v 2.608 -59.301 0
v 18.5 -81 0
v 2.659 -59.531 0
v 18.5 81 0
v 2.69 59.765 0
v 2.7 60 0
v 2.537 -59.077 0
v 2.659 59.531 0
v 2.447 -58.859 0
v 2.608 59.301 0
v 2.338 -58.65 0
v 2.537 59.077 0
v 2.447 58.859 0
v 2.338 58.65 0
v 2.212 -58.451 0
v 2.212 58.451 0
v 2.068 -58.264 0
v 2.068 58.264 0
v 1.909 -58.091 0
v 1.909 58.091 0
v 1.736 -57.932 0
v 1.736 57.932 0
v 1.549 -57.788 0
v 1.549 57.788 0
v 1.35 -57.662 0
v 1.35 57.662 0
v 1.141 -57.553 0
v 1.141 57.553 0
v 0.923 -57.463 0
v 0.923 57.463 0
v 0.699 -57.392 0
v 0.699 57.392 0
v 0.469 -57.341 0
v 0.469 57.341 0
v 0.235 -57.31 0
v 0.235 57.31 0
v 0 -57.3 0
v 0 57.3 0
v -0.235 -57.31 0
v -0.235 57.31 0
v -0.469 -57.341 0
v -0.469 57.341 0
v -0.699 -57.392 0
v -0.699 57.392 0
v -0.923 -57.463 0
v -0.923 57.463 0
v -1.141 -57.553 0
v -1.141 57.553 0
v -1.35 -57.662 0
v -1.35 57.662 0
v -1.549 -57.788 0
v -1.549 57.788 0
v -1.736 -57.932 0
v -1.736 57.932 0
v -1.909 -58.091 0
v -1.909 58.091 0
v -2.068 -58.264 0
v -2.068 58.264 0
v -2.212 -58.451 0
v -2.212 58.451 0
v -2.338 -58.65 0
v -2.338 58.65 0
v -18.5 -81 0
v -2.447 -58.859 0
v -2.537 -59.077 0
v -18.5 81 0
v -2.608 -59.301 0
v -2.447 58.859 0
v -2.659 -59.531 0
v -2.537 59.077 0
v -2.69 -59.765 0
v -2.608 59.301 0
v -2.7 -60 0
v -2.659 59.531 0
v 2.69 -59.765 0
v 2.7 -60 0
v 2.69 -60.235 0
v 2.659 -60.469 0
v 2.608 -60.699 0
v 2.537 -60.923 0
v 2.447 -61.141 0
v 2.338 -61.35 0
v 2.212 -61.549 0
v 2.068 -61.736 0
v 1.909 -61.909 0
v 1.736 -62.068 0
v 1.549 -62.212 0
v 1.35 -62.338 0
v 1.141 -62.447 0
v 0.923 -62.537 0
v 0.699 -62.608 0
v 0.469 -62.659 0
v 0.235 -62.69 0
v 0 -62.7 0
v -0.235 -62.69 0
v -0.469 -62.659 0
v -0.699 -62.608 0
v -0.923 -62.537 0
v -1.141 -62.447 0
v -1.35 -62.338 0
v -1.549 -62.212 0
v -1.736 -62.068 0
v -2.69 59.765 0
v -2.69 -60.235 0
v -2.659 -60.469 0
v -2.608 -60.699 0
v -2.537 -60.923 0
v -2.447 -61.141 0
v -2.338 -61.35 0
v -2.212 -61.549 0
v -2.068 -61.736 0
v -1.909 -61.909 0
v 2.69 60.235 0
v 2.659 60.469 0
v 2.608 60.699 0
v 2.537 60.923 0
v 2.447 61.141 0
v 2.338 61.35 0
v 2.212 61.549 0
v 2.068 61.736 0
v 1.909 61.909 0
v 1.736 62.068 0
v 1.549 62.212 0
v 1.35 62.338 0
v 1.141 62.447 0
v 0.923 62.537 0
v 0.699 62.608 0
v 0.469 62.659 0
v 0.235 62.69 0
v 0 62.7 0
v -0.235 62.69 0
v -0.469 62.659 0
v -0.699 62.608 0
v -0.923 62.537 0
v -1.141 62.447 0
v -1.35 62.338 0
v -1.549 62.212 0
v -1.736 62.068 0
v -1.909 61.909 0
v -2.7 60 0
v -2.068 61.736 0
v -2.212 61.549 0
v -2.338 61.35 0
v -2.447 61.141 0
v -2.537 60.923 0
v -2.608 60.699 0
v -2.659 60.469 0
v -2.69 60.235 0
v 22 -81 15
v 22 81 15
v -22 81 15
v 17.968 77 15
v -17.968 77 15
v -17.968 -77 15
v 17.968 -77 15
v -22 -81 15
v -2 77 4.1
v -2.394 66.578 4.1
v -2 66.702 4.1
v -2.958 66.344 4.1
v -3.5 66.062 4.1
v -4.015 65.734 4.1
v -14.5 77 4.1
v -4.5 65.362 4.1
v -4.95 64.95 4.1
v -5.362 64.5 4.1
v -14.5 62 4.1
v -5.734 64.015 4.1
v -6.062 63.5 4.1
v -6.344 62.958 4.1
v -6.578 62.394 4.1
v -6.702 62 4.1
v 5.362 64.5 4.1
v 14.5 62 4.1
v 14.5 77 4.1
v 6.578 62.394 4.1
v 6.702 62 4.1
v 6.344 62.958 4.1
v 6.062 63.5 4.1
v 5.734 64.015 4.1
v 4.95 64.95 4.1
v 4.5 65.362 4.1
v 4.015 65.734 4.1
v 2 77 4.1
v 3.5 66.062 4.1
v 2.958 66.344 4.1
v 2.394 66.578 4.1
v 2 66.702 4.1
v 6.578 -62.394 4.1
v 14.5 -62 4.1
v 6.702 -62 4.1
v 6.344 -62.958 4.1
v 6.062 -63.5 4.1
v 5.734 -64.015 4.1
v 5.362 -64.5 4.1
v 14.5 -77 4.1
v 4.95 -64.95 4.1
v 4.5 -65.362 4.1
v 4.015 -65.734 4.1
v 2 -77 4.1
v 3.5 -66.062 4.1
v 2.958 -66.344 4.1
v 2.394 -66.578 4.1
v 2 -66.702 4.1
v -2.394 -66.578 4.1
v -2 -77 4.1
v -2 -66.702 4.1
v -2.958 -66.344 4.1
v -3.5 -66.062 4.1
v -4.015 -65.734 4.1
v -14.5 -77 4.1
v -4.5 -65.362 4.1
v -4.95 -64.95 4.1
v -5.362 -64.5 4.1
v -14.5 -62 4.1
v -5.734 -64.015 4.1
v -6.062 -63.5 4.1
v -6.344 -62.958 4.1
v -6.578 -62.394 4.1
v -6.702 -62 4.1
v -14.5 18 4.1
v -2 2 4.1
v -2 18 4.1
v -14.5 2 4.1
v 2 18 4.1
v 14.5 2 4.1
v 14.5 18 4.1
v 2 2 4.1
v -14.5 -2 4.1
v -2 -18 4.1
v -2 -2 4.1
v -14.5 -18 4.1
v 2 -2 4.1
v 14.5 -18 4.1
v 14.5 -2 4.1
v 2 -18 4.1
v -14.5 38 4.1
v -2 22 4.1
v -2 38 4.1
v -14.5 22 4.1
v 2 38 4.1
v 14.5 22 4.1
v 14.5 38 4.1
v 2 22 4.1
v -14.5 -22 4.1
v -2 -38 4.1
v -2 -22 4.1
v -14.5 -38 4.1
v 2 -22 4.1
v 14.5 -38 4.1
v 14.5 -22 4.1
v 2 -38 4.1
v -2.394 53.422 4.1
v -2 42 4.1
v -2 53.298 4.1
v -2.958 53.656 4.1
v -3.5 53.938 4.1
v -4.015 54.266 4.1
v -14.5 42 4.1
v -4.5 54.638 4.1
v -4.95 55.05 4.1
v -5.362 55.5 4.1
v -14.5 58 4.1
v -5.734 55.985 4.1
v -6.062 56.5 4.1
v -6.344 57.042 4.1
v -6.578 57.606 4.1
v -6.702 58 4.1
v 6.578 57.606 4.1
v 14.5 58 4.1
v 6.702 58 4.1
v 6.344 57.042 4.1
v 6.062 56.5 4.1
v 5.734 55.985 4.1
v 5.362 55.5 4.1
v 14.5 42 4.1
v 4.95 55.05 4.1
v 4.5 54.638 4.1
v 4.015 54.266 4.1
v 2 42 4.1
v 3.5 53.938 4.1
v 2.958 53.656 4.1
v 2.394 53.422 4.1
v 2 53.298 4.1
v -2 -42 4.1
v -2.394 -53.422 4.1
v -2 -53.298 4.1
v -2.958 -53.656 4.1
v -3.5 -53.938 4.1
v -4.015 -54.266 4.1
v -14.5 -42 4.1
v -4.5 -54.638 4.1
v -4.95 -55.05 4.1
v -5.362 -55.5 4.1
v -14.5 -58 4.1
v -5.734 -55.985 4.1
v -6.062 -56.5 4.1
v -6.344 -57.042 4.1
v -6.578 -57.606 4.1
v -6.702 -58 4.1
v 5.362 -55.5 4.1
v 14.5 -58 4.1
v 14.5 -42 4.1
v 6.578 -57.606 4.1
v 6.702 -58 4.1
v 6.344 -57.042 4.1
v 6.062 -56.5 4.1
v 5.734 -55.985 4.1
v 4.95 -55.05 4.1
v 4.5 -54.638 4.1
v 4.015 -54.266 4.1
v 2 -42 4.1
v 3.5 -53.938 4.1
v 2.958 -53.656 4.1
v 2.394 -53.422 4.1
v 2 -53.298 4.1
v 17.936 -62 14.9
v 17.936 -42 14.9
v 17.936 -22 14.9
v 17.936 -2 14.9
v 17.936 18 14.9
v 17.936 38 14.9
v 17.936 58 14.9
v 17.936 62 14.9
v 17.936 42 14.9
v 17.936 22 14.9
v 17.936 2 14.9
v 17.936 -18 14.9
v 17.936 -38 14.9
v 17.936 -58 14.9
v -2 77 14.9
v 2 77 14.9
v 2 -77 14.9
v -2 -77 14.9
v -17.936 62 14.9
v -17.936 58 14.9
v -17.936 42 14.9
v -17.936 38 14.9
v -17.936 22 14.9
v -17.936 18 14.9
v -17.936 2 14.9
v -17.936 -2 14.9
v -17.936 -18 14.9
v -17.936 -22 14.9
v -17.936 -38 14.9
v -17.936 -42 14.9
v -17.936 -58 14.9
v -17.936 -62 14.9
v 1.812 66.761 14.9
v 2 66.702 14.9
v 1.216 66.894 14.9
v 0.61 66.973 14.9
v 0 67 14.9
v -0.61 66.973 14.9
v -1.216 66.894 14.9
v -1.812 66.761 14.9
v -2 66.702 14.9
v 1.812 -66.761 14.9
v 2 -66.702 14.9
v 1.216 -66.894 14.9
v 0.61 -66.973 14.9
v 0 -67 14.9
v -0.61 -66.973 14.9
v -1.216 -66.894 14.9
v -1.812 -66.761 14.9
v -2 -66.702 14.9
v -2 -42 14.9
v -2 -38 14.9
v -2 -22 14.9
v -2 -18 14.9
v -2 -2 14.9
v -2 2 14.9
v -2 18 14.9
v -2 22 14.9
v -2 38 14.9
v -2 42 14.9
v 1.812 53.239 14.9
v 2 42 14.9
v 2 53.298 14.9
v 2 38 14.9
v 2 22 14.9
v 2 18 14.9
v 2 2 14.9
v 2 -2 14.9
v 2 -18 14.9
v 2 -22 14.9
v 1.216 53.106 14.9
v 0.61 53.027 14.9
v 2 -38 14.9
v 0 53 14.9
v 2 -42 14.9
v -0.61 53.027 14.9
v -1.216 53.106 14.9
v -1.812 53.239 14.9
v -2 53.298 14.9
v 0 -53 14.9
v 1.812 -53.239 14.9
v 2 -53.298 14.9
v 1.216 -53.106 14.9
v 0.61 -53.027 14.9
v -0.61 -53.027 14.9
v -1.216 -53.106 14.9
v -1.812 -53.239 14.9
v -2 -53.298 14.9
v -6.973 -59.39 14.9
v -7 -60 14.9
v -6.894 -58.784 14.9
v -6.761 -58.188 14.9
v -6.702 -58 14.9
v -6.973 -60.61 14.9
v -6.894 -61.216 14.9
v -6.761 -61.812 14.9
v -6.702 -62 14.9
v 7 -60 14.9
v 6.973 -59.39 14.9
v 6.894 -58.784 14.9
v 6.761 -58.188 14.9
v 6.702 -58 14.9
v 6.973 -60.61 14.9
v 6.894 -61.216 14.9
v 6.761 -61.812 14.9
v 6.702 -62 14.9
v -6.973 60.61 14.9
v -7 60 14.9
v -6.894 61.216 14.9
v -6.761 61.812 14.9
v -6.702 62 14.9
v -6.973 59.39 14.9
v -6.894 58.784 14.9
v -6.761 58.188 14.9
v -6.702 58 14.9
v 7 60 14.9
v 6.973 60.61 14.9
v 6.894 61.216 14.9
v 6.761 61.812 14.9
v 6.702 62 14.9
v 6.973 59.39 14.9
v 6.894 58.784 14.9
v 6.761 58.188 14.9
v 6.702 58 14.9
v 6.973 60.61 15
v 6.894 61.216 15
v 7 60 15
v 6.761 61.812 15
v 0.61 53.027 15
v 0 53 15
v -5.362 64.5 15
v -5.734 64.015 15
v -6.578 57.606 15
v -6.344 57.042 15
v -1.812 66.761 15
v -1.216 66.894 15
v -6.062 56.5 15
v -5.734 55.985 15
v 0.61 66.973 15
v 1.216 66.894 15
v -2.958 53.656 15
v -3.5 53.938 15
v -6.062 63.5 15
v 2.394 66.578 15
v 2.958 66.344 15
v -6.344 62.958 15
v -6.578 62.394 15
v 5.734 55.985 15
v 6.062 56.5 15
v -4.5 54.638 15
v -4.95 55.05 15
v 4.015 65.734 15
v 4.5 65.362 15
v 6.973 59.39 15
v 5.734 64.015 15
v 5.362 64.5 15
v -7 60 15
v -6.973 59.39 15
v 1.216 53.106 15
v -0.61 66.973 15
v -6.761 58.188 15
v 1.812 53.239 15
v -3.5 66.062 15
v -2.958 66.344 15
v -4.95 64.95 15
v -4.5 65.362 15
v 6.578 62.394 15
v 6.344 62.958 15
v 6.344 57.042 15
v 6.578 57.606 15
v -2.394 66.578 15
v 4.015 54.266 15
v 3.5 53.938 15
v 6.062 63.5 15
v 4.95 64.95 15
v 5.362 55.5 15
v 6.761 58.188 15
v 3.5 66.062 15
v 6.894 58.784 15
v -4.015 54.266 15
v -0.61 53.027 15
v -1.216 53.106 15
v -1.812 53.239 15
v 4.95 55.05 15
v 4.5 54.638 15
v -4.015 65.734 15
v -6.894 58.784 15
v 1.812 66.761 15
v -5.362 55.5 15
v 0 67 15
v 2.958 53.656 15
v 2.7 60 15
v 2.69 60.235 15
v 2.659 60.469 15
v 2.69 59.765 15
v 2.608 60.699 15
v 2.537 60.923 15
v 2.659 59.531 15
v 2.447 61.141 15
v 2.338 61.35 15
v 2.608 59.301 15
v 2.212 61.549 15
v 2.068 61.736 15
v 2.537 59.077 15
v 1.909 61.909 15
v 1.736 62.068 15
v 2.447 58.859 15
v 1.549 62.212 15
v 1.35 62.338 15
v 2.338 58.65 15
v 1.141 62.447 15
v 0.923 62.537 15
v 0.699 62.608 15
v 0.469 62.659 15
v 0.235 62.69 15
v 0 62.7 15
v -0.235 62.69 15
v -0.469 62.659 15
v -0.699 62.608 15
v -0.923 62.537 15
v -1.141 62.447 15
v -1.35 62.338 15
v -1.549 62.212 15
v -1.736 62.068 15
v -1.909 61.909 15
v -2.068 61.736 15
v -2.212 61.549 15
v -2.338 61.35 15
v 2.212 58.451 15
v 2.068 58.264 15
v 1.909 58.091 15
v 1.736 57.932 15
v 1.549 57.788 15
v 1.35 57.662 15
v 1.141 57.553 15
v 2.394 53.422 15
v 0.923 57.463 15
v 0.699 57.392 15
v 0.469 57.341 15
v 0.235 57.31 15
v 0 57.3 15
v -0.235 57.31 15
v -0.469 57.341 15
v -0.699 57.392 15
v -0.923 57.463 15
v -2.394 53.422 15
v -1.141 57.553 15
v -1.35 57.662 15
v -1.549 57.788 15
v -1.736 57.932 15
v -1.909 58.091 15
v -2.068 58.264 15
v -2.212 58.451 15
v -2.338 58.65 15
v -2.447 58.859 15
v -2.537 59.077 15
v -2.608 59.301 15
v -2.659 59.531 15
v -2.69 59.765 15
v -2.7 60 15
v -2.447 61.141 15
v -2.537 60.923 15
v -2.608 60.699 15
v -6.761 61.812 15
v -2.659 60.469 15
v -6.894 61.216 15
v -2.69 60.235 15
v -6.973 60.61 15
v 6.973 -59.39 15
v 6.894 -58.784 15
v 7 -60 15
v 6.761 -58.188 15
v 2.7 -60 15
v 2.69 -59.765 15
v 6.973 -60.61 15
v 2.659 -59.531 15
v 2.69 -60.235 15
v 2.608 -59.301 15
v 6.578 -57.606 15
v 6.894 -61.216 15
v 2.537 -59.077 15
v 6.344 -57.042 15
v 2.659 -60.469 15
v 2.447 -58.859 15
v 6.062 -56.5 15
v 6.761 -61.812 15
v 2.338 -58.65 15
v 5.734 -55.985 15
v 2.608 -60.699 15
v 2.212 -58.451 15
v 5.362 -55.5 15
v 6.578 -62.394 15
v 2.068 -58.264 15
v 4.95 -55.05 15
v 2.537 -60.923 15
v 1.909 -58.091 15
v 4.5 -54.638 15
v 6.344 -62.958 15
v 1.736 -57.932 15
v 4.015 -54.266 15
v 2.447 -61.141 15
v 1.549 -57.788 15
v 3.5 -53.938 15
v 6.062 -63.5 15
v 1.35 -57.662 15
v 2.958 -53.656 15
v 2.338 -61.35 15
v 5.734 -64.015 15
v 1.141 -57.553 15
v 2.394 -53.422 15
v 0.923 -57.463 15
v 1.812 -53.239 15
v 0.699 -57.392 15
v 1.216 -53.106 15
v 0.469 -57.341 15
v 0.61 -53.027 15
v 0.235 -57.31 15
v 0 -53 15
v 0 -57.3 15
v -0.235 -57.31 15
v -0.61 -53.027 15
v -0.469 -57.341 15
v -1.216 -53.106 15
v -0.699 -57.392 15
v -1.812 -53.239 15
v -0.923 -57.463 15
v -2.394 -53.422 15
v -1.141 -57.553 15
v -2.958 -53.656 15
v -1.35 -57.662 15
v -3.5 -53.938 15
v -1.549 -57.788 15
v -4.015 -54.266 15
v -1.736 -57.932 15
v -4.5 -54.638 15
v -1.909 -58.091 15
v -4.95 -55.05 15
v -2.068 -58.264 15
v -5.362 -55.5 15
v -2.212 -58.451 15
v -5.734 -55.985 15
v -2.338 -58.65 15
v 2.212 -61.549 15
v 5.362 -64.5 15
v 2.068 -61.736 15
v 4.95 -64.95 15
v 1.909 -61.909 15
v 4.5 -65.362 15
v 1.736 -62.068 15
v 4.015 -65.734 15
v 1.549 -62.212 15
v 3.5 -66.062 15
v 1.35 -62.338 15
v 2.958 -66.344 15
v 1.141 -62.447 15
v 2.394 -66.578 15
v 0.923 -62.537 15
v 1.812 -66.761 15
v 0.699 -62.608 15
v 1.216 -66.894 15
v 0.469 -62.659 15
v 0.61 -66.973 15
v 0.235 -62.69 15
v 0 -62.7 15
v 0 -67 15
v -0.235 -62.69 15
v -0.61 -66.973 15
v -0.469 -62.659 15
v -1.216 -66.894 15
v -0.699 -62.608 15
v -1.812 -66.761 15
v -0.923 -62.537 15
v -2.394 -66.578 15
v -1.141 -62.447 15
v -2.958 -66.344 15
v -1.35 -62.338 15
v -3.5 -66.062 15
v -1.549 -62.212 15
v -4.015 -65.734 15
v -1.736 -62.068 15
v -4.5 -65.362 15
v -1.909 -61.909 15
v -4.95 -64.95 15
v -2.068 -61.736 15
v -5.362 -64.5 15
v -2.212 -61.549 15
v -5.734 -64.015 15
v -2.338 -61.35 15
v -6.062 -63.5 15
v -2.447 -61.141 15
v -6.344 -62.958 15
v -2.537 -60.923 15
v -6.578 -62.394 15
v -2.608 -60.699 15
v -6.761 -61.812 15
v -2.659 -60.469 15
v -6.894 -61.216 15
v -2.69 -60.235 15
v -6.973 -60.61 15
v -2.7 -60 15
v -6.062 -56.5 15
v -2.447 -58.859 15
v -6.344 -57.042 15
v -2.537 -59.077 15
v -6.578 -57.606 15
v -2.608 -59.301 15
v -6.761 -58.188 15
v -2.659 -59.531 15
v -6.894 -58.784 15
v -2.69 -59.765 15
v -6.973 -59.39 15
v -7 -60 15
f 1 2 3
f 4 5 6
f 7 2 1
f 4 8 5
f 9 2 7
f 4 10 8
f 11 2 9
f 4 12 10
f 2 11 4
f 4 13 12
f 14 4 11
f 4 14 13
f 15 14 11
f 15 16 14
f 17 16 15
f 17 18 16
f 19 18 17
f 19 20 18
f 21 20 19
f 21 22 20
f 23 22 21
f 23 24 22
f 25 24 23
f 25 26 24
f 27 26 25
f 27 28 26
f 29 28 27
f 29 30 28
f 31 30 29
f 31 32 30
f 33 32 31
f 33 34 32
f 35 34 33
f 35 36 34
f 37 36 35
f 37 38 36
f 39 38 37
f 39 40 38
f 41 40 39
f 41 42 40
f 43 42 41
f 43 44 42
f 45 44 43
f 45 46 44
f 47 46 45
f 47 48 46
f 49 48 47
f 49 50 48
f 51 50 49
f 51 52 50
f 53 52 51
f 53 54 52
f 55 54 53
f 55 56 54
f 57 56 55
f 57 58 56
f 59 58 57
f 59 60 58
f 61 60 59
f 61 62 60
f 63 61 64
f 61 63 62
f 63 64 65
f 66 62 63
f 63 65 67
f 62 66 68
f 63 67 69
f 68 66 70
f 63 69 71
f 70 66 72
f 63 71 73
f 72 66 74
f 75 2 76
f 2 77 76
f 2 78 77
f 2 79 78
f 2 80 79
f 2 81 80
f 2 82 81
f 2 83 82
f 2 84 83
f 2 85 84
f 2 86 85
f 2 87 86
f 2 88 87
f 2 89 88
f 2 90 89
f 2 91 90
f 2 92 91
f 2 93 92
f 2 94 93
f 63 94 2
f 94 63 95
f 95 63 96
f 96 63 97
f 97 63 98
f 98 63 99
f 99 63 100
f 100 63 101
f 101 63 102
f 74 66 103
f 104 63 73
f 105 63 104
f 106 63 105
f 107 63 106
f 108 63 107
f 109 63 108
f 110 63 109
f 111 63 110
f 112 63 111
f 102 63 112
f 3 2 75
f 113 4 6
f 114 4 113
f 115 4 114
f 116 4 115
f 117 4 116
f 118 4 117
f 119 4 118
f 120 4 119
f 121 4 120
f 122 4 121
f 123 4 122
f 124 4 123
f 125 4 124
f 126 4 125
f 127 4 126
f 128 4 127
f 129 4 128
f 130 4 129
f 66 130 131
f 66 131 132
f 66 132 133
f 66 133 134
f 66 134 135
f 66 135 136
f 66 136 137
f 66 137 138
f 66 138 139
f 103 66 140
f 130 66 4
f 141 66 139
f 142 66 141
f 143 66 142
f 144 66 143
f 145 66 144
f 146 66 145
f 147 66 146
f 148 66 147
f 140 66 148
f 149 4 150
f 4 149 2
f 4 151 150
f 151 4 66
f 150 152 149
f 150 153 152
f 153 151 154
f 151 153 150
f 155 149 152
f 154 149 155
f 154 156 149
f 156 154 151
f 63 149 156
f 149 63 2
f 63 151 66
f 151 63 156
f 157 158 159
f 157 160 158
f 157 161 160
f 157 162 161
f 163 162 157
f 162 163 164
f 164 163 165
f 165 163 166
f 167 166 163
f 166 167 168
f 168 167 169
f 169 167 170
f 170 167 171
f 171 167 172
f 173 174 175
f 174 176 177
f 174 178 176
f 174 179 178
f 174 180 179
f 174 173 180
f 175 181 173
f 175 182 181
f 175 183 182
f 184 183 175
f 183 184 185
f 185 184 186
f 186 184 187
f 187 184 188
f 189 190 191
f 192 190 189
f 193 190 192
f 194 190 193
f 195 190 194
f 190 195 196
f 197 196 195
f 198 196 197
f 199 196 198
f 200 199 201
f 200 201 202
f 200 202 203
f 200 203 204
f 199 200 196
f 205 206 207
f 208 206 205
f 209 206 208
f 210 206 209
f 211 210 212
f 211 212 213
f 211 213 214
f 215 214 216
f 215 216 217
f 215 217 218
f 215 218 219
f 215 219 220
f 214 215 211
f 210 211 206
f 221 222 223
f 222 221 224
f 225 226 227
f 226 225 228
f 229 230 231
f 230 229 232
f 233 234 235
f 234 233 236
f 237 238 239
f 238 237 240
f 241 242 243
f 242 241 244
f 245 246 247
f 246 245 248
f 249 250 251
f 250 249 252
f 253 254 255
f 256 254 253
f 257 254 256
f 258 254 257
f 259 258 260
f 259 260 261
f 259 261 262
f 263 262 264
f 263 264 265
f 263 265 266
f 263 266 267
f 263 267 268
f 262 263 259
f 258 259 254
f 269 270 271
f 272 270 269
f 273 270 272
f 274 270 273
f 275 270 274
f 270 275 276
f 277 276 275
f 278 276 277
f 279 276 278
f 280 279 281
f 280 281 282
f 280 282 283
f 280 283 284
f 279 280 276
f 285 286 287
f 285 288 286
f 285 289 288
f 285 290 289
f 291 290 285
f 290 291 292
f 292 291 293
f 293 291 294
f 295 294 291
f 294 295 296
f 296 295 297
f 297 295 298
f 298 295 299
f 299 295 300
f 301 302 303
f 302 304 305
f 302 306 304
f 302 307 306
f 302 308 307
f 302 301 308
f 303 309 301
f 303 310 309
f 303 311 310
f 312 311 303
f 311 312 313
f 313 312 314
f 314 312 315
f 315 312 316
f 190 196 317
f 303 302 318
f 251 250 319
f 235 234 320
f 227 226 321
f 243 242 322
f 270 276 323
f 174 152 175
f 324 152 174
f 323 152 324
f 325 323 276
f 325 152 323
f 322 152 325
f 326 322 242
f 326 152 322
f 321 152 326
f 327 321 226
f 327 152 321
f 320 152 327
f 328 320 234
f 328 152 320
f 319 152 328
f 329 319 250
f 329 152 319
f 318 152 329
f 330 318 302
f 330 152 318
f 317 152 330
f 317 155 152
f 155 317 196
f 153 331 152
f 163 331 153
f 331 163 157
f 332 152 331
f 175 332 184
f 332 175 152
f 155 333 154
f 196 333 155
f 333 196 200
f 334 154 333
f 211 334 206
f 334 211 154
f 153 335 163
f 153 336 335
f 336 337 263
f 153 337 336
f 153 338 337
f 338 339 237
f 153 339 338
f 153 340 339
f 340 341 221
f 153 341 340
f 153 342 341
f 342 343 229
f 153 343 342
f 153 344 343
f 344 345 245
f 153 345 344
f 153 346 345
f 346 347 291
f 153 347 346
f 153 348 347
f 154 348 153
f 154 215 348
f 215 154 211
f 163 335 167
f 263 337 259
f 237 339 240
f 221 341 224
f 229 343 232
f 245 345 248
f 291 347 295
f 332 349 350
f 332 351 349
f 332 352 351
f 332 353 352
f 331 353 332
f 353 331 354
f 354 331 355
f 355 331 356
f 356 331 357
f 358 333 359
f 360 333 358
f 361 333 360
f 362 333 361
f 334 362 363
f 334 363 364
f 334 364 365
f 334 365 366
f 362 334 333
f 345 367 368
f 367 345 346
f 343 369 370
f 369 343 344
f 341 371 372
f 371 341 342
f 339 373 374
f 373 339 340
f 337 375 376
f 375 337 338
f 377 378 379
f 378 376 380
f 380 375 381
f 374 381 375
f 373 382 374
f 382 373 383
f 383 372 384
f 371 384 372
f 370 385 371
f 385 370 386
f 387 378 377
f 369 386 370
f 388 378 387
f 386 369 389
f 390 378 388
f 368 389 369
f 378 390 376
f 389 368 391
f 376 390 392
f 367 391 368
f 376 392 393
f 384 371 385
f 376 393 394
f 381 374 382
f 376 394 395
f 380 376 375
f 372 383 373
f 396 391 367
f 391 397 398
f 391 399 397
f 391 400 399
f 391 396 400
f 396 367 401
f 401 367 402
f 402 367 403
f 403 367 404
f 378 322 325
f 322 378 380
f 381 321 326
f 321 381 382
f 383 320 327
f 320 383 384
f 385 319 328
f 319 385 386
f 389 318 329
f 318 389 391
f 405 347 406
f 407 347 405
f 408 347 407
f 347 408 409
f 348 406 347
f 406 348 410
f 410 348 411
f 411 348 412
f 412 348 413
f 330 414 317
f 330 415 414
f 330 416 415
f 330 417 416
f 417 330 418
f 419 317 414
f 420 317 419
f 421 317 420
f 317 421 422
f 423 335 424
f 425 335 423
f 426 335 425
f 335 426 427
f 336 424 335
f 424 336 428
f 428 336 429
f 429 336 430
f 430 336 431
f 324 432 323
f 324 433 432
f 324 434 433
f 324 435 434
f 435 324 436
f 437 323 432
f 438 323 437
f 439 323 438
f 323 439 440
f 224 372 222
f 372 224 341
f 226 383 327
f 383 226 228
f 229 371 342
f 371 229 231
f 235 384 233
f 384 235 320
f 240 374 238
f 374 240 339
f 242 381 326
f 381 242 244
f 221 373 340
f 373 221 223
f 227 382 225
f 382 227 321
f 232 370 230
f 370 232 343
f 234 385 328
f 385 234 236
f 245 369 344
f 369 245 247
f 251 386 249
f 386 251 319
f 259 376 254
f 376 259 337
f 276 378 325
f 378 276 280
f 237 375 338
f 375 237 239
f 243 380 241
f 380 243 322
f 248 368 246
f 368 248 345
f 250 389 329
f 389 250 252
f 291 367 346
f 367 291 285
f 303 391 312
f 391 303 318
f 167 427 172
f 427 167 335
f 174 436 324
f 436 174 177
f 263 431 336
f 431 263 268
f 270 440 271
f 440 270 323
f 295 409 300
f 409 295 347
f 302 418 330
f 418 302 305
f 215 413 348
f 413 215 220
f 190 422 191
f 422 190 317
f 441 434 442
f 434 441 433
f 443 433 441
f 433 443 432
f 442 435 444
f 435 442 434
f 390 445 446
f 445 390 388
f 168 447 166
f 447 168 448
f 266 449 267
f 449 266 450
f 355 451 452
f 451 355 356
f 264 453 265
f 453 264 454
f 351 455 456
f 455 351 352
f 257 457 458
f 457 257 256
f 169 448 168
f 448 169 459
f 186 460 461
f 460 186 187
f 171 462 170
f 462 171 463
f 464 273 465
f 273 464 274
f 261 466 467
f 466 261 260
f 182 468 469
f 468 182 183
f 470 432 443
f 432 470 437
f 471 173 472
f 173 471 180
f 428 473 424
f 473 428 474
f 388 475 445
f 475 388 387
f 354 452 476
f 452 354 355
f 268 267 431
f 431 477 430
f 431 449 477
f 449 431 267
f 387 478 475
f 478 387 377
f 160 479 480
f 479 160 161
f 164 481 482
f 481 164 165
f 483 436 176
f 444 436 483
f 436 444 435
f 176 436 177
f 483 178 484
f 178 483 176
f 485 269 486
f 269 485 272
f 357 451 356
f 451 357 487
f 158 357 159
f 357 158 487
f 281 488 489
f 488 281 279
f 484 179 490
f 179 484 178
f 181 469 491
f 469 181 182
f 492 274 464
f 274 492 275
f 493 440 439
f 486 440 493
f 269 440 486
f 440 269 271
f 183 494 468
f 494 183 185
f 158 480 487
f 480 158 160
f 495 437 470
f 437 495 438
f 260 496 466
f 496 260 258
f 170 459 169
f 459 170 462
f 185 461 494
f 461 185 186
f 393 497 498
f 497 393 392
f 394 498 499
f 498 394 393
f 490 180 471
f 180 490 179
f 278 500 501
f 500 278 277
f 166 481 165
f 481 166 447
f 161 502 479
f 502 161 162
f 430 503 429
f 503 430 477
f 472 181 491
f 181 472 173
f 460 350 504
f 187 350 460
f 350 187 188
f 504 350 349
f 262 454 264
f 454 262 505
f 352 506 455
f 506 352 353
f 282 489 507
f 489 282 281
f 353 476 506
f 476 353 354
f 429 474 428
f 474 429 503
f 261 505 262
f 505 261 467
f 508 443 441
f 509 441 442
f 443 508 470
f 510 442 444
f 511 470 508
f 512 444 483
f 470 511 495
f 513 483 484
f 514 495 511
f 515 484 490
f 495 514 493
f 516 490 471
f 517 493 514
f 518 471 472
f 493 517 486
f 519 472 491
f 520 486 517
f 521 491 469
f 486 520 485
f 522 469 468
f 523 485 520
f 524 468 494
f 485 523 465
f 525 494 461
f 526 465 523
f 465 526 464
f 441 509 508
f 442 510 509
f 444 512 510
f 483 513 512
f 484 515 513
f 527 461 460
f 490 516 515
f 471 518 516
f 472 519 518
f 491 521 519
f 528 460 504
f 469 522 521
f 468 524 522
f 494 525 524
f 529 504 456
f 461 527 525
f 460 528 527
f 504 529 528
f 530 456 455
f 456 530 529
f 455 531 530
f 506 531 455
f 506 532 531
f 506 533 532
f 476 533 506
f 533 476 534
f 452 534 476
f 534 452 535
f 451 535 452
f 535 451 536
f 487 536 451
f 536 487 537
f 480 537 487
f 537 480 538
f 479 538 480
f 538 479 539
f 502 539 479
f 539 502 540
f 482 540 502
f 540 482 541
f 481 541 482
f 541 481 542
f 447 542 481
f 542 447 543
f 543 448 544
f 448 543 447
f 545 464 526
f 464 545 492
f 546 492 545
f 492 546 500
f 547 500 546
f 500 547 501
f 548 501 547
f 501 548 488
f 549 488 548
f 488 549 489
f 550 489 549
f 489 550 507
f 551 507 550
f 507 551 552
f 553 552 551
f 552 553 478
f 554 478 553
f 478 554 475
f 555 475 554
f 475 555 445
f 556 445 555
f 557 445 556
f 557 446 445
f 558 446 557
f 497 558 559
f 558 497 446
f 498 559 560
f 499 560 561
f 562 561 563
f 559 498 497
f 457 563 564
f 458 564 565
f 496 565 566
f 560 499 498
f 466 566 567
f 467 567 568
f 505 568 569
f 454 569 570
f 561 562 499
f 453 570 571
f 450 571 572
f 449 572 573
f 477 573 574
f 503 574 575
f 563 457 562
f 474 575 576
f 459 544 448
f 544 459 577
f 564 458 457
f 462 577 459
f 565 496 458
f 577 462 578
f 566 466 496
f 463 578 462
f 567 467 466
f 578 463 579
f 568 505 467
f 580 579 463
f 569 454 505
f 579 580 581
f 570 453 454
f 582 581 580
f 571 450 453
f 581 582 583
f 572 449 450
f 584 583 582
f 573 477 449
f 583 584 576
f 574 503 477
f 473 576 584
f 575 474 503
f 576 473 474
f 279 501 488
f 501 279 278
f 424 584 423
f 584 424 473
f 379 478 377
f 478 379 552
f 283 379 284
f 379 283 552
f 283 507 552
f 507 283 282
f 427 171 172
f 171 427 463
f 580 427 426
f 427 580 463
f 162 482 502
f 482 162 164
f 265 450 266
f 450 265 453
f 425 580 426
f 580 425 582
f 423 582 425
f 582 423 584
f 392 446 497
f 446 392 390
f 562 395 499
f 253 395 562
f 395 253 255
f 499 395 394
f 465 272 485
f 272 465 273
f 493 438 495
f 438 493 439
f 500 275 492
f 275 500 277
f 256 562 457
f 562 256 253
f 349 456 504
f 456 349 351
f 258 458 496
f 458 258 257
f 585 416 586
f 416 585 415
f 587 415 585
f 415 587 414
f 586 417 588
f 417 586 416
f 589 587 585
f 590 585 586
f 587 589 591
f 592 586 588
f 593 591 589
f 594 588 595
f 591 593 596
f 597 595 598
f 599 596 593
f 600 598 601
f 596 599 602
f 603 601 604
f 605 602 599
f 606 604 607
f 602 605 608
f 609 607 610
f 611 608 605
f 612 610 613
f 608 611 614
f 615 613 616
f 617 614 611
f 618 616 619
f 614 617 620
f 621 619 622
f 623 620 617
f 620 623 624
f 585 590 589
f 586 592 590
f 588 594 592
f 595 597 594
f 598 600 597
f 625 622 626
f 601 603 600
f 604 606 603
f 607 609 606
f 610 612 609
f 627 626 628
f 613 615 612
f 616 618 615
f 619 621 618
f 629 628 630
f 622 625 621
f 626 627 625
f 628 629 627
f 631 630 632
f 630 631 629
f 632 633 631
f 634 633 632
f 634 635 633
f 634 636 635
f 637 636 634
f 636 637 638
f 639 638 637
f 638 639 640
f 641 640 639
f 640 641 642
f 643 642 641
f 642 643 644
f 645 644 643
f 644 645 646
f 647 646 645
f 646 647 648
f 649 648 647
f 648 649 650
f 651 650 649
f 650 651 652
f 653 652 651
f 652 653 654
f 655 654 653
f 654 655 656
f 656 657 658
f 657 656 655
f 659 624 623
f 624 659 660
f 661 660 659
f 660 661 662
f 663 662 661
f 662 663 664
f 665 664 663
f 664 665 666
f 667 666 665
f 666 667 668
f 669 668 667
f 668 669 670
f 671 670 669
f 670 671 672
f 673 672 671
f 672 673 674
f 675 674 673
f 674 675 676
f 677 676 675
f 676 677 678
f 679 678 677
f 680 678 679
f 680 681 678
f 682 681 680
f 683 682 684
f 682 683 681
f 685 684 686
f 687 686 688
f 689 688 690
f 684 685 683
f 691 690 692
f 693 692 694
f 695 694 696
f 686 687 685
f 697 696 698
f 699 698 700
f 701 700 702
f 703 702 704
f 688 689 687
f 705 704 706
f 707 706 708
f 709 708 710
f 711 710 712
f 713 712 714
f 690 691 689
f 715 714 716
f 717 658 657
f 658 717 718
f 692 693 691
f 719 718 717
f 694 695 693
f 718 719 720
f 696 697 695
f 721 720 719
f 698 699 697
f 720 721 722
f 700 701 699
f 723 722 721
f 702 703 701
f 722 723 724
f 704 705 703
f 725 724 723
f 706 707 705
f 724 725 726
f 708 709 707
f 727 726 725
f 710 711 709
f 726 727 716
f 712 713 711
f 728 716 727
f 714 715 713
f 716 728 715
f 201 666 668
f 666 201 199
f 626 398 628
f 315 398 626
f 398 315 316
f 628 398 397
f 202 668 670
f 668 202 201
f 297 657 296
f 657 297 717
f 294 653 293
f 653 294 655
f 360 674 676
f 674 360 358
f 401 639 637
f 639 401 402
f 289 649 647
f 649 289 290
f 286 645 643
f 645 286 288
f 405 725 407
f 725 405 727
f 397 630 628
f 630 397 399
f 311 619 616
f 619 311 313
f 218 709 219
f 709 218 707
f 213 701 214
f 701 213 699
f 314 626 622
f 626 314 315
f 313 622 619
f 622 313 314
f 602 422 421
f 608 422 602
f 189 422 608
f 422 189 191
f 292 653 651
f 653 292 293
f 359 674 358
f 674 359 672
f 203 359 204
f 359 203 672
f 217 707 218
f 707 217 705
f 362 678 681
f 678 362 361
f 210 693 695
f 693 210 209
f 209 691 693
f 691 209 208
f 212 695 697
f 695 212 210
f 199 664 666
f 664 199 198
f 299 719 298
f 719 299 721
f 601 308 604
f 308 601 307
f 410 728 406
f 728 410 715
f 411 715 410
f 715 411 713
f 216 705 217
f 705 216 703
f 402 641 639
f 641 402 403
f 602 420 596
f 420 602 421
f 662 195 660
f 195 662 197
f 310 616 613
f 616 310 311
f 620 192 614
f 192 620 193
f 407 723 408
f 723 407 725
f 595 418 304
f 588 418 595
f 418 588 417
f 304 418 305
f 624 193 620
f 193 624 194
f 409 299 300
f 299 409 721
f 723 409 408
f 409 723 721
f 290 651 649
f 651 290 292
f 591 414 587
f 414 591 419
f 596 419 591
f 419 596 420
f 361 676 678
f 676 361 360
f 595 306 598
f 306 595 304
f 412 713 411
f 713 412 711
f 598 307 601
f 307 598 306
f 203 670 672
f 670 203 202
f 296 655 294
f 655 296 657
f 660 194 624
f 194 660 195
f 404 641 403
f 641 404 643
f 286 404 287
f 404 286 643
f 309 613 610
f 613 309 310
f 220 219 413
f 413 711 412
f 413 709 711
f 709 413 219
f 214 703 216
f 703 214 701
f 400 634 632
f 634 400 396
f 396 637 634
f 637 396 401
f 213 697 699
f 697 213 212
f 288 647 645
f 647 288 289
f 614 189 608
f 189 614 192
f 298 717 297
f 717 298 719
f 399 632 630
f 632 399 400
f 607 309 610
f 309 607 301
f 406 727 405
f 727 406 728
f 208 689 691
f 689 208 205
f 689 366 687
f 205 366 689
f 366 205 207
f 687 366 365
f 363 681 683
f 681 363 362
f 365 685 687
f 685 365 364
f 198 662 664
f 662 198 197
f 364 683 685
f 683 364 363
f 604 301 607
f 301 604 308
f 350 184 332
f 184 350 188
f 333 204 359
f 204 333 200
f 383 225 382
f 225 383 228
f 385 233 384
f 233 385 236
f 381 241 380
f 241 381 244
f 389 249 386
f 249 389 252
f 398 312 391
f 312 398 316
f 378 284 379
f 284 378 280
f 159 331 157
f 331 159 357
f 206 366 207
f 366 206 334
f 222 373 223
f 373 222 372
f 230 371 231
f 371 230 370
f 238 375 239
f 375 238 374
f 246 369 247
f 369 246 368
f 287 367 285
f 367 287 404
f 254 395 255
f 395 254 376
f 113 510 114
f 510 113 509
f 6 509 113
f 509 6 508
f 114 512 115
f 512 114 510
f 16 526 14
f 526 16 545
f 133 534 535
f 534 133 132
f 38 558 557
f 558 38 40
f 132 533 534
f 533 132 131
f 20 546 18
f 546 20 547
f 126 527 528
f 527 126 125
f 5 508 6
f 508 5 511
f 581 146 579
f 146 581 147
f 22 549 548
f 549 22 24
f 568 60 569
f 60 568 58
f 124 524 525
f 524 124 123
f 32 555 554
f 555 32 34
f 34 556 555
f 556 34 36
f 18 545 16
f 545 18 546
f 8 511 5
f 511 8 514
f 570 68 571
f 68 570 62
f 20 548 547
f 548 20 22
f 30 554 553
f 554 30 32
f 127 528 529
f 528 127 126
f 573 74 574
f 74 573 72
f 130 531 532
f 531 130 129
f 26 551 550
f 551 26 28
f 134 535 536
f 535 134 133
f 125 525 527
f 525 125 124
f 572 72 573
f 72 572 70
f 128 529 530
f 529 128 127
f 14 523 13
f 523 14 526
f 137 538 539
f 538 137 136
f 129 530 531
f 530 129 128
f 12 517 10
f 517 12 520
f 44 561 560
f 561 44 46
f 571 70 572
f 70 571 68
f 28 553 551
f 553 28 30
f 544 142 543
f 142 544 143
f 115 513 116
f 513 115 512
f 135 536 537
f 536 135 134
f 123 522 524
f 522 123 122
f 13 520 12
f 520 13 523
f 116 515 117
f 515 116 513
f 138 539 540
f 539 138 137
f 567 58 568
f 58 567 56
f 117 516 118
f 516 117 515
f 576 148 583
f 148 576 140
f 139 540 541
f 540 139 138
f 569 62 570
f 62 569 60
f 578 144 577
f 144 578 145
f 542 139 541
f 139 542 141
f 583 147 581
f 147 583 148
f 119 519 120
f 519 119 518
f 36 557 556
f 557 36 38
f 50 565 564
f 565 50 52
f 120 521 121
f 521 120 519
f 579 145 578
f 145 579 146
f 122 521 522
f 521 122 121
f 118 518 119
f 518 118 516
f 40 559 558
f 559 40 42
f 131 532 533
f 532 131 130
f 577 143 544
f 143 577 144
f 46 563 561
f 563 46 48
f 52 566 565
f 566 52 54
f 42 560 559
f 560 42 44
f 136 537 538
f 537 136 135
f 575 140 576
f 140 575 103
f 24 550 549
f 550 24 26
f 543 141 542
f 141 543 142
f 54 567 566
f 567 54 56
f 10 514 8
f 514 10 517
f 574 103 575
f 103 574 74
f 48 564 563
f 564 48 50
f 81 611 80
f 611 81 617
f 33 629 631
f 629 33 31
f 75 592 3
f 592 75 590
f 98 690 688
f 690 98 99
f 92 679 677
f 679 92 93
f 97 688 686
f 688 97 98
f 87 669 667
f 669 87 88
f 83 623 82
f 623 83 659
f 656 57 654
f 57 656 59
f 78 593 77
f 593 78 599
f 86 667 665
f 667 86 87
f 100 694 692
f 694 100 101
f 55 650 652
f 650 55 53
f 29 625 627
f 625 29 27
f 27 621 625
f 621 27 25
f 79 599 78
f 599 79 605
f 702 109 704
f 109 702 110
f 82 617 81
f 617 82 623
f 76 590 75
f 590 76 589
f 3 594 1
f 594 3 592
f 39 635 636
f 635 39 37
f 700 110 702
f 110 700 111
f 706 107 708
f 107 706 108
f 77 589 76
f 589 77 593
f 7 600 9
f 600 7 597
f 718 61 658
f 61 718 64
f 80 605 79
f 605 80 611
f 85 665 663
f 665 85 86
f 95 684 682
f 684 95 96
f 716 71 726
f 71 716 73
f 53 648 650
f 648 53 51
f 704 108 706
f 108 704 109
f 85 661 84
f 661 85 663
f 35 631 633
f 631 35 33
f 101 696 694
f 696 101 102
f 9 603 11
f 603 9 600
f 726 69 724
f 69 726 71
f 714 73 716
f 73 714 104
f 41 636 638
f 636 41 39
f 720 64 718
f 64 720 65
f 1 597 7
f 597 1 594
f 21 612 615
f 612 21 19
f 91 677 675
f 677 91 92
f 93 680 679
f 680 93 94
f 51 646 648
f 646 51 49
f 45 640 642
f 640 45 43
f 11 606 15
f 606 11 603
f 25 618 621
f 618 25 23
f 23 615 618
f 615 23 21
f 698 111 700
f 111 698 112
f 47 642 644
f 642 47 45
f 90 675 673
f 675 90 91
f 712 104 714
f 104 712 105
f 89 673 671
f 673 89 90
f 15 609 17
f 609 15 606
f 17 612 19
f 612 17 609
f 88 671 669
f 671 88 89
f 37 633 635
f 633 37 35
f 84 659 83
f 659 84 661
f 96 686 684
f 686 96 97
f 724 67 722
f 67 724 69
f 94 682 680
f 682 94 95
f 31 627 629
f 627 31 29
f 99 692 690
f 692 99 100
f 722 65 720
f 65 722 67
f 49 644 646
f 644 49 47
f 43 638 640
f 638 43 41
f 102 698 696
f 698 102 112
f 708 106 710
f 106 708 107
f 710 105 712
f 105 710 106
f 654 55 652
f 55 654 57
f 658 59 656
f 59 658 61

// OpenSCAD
// QUEUE D'ARONDE VIXEN 162 mm & 192mm
// Pierre REVEL 24/3/24
//
// Projet lunette PVC 60 mm DIY
// Queue d'aronde au format VIXEN 162mm (possibilité 192 mm) spécifiquement conçue pour
// les colliers pour tubes diamètre 63 et leurs vis de fixation murale

$fn=72;
aju=0.1;

ep=4;
trouvis=5.4; // diamètre trou des vis des colliers 

// 0 pour version 192mm, 30 pour version 162mm (réduite de 30mm)
reduc=30;
// le nombre de murs de renfort dans la largeur dépend de la version
wall_extent = reduc > 0 ? 100 : 80;    

module matiere() {
    union() {
      difference() {
        // extérieur de la coque
        translate([-22,0,0]) rotate([90,0,0])
            linear_extrude(height=192-reduc,center=true) polygon(points=[[3.5,0],[0,15],[44,15],[40.5,0]]);
        // intérieur de la coque
        translate([-22,0,aju]) rotate([90,0,0])
            linear_extrude(height=192-reduc-2*ep,center=true) polygon(points=[[3.5+ep,ep],[ep,15],[44-ep,15],[40.5-ep,ep]]);
      }
      // renforts pour les vis des colliers
      translate([0,80-reduc*2/3,0]) cylinder(h=15,r=ep+3);
      translate([0,-80+reduc*2/3,0]) cylinder(h=15,r=ep+3);

      // murs de renfort dans la largeur  
      dz=ep/2+7.5-aju;
      for (y=[0:20:wall_extent-reduc]) {
        translate([0,y,dz]) cube([44-2*ep,ep,15-ep],center=true);
        if (y!=0) translate([0,-y,dz]) cube([44-2*ep,ep,15-ep],center=true);
      }
      // mur de renfort dans la longueur  
      translate([0,0,dz]) cube([ep,192-reduc-aju,15-ep],center=true);
    }
}

difference() {
  matiere();
  // TROUS DE DIAMETRE <trouvis>
  translate([0,80-reduc*2/3,-10]) cylinder(h=35,r=trouvis/2);
  translate([0,-80+reduc*2/3,-10]) cylinder(h=35,r=trouvis/2);
}
